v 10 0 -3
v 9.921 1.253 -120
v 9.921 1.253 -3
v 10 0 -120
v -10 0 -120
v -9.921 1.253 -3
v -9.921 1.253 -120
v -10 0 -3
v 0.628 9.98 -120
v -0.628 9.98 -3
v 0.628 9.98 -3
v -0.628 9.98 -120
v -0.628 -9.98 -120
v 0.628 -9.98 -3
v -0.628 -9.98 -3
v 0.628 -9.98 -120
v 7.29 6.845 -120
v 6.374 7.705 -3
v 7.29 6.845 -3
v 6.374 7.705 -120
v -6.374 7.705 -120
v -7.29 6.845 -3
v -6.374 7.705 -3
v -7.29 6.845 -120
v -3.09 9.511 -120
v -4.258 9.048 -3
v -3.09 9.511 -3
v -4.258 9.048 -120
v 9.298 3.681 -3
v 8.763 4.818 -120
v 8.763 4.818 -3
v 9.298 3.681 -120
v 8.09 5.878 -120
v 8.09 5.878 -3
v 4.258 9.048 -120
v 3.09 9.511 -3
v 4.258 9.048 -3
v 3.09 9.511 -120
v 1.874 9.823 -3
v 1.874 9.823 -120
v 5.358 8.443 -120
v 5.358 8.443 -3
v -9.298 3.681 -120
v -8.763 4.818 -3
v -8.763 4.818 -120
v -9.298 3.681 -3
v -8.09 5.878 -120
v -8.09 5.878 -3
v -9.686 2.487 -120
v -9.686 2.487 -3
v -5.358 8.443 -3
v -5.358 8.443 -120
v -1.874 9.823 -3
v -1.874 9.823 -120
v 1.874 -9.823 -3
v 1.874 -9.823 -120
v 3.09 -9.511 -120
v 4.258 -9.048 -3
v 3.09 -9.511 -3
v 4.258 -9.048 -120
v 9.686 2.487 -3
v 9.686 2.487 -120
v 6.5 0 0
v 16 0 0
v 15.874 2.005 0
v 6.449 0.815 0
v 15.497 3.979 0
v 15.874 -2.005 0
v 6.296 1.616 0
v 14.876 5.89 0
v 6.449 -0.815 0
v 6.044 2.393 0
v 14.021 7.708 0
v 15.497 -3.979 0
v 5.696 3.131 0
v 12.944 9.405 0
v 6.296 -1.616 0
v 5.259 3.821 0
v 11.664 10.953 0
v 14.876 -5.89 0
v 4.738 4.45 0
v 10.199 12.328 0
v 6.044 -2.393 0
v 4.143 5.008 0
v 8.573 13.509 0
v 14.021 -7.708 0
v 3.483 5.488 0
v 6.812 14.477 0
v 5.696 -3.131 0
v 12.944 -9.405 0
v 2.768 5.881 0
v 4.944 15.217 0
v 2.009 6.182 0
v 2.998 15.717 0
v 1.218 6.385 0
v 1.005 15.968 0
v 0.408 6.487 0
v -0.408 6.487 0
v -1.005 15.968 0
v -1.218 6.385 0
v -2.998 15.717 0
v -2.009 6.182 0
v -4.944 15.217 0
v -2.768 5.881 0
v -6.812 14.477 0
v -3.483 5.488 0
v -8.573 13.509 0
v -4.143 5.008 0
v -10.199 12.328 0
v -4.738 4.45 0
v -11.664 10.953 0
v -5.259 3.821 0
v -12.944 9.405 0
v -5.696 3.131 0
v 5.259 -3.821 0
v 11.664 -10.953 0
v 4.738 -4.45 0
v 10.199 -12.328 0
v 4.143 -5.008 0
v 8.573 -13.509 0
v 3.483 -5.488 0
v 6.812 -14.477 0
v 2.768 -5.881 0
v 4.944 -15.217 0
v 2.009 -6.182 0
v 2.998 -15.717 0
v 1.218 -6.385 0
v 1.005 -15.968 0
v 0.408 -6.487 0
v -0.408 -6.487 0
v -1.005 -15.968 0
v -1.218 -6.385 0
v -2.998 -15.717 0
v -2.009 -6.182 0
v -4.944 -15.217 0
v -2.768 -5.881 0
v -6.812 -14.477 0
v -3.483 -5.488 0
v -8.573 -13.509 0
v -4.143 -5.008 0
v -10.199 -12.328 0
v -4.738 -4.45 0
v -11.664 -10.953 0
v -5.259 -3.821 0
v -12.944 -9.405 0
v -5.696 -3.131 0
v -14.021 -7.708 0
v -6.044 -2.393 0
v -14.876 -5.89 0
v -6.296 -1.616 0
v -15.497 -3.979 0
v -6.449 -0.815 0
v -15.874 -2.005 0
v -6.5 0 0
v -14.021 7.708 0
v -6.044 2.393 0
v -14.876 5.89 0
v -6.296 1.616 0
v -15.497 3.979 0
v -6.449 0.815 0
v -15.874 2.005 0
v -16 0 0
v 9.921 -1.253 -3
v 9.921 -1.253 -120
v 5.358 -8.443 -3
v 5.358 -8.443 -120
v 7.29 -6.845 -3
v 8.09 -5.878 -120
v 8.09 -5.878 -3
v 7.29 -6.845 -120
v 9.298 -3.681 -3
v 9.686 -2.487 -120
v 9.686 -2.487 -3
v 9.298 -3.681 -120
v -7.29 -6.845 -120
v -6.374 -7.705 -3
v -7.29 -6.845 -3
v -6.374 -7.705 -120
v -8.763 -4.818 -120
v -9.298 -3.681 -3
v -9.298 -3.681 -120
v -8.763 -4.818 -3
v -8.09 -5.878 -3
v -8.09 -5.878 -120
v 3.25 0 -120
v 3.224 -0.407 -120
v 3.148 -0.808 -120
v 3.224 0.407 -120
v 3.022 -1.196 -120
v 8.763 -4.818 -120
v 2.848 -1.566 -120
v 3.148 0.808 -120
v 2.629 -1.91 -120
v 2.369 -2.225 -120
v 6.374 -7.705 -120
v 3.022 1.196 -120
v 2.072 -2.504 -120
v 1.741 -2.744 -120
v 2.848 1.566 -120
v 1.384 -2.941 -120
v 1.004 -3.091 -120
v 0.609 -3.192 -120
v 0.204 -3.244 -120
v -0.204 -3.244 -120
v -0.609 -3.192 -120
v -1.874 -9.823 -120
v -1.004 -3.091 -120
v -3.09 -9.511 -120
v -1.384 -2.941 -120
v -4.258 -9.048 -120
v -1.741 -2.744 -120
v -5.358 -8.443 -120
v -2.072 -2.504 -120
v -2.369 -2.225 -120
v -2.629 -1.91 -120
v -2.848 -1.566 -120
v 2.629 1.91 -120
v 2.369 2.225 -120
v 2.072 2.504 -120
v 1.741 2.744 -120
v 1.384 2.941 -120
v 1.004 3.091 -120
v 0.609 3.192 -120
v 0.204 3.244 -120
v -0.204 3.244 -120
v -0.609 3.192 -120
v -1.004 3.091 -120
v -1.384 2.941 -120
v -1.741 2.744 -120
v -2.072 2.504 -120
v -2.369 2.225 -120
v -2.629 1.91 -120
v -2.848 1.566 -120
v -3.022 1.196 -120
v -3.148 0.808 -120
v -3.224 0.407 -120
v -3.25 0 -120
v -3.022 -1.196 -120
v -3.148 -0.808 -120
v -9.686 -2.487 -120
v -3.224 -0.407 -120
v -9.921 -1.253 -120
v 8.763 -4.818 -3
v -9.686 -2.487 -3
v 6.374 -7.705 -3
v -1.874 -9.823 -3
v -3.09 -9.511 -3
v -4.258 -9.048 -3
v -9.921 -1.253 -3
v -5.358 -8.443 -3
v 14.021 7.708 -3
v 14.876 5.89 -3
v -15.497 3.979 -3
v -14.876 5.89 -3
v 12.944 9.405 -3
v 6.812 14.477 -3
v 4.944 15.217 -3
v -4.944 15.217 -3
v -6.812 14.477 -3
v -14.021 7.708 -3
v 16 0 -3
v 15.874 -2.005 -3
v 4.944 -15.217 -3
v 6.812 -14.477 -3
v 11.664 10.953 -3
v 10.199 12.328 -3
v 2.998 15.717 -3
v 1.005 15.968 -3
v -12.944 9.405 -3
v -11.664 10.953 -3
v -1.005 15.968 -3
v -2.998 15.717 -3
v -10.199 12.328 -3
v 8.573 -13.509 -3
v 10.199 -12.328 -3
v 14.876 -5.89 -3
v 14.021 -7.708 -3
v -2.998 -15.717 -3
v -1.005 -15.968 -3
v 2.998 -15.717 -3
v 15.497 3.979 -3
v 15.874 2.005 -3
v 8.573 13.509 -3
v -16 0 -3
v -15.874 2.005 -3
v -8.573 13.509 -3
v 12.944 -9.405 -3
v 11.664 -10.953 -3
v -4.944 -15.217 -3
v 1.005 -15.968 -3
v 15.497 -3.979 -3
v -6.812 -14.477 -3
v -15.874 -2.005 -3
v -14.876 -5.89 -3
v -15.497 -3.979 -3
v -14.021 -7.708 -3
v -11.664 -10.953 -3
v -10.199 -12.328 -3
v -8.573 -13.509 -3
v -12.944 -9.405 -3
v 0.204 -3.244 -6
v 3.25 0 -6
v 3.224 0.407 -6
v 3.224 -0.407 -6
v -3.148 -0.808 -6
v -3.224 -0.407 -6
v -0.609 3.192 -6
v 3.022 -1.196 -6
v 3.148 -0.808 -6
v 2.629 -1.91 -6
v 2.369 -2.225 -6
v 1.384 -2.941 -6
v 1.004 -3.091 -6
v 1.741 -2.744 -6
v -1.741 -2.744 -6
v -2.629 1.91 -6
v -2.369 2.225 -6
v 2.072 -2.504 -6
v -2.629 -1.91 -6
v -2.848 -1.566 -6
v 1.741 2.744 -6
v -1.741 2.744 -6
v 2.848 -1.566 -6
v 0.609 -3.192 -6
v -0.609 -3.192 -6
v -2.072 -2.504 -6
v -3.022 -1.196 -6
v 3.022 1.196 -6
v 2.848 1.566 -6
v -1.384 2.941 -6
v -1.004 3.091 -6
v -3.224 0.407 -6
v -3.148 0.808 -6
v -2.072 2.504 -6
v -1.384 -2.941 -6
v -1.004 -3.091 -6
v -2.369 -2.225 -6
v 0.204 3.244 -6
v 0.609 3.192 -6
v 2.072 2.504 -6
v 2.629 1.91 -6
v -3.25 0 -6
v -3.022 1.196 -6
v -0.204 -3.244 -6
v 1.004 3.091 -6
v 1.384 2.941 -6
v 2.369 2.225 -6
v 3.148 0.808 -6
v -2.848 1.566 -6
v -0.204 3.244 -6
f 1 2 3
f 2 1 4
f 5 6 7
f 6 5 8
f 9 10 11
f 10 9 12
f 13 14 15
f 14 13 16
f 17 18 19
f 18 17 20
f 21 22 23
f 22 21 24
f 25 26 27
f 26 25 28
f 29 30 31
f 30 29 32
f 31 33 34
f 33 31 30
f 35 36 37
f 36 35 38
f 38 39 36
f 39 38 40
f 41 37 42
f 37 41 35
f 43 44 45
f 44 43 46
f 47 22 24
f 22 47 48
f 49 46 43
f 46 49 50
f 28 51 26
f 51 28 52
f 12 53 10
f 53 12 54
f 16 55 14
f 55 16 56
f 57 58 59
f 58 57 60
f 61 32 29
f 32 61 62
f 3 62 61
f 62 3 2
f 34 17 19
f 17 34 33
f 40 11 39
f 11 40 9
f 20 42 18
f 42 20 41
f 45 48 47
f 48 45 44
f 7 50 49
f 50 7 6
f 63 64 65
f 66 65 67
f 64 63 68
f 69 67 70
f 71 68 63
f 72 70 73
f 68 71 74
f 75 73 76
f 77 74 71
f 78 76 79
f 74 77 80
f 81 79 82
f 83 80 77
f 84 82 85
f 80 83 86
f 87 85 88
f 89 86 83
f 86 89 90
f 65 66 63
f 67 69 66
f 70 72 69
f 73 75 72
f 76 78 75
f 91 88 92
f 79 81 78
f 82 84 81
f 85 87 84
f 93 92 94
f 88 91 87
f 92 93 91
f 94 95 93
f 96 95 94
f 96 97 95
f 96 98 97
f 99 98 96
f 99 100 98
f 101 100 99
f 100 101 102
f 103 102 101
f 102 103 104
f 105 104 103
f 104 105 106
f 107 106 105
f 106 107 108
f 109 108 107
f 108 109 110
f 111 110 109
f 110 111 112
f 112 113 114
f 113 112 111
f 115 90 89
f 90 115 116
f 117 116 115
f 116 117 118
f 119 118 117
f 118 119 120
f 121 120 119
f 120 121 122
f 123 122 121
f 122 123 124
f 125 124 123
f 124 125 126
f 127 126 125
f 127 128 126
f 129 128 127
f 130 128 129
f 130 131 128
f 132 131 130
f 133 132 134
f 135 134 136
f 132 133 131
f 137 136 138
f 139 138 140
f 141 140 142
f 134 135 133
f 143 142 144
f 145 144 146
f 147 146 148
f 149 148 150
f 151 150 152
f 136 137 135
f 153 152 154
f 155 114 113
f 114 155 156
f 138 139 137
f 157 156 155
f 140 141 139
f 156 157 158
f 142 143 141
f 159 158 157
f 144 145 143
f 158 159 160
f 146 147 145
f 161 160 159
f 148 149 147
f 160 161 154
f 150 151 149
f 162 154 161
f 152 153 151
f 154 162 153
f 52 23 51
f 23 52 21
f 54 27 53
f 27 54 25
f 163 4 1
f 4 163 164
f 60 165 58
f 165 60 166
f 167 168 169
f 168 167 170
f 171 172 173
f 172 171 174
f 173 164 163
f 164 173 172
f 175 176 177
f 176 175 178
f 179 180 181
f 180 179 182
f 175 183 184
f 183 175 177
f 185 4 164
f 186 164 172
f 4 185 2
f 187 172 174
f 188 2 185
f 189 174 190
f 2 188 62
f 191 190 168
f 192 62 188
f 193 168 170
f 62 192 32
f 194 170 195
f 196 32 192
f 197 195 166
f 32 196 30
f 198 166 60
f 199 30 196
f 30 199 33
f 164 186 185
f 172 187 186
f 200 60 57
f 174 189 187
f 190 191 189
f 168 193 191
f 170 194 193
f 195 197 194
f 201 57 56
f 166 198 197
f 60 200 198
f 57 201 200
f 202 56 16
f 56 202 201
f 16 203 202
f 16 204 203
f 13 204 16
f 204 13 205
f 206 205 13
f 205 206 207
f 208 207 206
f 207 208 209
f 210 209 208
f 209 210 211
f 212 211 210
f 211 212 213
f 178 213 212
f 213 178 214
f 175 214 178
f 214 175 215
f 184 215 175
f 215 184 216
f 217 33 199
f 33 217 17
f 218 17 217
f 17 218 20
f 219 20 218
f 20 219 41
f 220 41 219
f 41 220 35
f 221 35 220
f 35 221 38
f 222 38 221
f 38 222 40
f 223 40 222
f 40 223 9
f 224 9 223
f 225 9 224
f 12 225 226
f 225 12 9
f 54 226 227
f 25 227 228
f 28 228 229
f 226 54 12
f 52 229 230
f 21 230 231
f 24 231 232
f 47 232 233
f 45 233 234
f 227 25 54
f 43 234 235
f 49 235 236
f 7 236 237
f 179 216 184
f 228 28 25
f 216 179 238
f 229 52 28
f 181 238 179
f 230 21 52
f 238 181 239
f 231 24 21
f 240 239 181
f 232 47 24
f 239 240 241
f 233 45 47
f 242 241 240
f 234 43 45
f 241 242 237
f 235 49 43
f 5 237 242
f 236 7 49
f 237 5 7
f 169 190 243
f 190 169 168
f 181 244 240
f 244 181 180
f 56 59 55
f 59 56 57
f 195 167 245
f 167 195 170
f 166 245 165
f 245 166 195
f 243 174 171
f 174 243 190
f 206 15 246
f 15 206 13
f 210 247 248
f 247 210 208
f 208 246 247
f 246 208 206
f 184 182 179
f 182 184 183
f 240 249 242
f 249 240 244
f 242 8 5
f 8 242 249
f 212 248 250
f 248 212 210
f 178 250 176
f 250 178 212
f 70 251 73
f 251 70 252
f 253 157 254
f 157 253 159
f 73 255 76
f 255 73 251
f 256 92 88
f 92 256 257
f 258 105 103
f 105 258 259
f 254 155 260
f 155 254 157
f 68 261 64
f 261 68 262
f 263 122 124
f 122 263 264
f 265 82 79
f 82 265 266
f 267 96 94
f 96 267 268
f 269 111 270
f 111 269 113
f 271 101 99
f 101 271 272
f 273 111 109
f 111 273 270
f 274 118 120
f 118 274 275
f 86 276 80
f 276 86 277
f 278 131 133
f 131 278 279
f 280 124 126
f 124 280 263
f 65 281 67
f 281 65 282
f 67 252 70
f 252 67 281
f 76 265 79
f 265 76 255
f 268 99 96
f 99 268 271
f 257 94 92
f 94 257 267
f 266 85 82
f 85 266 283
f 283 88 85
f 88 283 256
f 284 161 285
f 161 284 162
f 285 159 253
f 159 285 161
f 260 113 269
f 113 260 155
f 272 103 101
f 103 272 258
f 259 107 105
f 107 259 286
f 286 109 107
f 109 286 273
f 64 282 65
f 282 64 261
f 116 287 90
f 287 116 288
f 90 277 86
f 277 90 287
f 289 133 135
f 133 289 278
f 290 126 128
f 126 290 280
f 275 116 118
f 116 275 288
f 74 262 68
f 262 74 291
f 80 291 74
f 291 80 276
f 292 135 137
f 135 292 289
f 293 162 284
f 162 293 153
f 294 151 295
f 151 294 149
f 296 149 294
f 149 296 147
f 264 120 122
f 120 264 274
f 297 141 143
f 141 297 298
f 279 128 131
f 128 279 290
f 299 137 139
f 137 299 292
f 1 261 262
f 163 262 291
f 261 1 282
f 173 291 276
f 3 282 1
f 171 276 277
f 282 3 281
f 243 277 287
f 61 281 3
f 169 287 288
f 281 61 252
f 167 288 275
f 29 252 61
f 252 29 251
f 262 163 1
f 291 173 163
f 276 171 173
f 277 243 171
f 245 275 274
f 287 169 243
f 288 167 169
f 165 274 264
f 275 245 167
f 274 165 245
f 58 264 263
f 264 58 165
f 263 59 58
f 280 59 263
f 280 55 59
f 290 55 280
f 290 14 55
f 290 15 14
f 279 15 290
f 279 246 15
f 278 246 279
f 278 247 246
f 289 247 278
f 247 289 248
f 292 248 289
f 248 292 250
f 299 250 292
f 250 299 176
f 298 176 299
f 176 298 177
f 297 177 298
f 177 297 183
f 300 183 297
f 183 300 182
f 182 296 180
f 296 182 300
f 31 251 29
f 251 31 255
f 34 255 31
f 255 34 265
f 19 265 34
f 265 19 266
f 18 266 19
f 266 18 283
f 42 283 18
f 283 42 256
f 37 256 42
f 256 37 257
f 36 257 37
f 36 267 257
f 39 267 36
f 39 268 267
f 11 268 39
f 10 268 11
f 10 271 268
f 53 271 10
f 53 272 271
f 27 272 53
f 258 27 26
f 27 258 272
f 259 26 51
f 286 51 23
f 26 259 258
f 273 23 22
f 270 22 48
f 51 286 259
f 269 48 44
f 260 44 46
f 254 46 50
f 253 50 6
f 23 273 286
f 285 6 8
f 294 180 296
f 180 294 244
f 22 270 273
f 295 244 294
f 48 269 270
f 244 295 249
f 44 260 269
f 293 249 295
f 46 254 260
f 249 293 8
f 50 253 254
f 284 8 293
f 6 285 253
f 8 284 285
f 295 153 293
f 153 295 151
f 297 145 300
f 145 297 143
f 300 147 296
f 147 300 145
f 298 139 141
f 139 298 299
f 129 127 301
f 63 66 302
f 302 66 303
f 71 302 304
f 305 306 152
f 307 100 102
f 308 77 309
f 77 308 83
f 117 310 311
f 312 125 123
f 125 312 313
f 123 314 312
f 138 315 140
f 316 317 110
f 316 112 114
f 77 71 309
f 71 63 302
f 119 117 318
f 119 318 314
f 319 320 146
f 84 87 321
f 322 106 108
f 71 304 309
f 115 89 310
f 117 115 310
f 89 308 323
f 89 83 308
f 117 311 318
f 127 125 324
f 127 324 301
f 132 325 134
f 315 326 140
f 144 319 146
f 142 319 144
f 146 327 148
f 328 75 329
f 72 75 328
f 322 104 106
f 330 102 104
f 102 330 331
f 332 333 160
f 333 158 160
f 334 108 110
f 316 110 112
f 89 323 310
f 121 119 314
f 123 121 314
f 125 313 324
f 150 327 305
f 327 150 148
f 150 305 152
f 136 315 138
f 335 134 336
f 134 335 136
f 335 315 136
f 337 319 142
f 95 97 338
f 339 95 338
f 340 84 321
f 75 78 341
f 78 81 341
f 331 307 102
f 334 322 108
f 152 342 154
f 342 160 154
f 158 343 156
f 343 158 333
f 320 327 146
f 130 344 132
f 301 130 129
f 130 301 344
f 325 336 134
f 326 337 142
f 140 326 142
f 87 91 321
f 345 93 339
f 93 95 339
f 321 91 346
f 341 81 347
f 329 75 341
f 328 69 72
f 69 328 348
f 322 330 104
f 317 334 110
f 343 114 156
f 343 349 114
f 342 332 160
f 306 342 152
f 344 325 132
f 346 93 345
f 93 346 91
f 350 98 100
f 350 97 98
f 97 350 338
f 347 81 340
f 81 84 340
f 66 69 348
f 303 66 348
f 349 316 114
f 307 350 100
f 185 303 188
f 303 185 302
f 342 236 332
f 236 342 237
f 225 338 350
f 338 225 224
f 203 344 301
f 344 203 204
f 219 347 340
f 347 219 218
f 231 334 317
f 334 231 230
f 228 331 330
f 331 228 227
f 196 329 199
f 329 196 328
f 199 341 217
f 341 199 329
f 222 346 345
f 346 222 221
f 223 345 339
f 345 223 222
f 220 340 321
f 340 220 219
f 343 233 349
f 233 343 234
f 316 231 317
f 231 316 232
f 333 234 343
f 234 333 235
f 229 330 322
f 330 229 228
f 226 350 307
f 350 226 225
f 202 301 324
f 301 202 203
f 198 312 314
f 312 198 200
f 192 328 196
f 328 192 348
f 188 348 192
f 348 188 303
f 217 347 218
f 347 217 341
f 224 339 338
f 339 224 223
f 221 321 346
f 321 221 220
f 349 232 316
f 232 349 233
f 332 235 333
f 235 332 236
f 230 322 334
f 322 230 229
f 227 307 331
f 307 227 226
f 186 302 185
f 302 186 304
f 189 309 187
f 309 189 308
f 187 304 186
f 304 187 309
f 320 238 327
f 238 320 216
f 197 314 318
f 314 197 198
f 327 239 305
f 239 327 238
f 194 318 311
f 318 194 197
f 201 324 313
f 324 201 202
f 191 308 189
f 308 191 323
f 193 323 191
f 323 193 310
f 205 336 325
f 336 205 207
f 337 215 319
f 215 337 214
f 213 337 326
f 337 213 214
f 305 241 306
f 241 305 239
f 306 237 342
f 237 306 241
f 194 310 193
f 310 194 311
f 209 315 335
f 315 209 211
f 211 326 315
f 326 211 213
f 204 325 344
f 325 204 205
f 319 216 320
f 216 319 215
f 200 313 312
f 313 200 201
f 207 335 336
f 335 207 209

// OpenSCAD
$fn = 50;


difference() {
	union() {
		translate(v = [0, 0, -120.0000000000]) {
			cylinder(h = 120, r = 10.0000000000);
		}
		translate(v = [0, 0, -3.0000000000]) {
			cylinder(h = 3, r = 16.0000000000);
		}
	}
	union() {
		translate(v = [0, 0, 0]) {
			rotate(a = [0, 0, 0]) {
				difference() {
					union() {
						#translate(v = [0, 0, -120.0000000000]) {
							cylinder(h = 120, r = 2.2500000000);
						}
						#translate(v = [0, 0, -6]) {
							cylinder(h = 6, r1 = 3.2500000000, r2 = 6.5000000000);
						}
						#translate(v = [0, 0, -120.0000000000]) {
							cylinder(h = 120, r = 3.2500000000);
						}
						#translate(v = [0, 0, -120.0000000000]) {
							cylinder(h = 120, r = 2.2500000000);
						}
					}
					union();
				}
			}
		}
	}
}
